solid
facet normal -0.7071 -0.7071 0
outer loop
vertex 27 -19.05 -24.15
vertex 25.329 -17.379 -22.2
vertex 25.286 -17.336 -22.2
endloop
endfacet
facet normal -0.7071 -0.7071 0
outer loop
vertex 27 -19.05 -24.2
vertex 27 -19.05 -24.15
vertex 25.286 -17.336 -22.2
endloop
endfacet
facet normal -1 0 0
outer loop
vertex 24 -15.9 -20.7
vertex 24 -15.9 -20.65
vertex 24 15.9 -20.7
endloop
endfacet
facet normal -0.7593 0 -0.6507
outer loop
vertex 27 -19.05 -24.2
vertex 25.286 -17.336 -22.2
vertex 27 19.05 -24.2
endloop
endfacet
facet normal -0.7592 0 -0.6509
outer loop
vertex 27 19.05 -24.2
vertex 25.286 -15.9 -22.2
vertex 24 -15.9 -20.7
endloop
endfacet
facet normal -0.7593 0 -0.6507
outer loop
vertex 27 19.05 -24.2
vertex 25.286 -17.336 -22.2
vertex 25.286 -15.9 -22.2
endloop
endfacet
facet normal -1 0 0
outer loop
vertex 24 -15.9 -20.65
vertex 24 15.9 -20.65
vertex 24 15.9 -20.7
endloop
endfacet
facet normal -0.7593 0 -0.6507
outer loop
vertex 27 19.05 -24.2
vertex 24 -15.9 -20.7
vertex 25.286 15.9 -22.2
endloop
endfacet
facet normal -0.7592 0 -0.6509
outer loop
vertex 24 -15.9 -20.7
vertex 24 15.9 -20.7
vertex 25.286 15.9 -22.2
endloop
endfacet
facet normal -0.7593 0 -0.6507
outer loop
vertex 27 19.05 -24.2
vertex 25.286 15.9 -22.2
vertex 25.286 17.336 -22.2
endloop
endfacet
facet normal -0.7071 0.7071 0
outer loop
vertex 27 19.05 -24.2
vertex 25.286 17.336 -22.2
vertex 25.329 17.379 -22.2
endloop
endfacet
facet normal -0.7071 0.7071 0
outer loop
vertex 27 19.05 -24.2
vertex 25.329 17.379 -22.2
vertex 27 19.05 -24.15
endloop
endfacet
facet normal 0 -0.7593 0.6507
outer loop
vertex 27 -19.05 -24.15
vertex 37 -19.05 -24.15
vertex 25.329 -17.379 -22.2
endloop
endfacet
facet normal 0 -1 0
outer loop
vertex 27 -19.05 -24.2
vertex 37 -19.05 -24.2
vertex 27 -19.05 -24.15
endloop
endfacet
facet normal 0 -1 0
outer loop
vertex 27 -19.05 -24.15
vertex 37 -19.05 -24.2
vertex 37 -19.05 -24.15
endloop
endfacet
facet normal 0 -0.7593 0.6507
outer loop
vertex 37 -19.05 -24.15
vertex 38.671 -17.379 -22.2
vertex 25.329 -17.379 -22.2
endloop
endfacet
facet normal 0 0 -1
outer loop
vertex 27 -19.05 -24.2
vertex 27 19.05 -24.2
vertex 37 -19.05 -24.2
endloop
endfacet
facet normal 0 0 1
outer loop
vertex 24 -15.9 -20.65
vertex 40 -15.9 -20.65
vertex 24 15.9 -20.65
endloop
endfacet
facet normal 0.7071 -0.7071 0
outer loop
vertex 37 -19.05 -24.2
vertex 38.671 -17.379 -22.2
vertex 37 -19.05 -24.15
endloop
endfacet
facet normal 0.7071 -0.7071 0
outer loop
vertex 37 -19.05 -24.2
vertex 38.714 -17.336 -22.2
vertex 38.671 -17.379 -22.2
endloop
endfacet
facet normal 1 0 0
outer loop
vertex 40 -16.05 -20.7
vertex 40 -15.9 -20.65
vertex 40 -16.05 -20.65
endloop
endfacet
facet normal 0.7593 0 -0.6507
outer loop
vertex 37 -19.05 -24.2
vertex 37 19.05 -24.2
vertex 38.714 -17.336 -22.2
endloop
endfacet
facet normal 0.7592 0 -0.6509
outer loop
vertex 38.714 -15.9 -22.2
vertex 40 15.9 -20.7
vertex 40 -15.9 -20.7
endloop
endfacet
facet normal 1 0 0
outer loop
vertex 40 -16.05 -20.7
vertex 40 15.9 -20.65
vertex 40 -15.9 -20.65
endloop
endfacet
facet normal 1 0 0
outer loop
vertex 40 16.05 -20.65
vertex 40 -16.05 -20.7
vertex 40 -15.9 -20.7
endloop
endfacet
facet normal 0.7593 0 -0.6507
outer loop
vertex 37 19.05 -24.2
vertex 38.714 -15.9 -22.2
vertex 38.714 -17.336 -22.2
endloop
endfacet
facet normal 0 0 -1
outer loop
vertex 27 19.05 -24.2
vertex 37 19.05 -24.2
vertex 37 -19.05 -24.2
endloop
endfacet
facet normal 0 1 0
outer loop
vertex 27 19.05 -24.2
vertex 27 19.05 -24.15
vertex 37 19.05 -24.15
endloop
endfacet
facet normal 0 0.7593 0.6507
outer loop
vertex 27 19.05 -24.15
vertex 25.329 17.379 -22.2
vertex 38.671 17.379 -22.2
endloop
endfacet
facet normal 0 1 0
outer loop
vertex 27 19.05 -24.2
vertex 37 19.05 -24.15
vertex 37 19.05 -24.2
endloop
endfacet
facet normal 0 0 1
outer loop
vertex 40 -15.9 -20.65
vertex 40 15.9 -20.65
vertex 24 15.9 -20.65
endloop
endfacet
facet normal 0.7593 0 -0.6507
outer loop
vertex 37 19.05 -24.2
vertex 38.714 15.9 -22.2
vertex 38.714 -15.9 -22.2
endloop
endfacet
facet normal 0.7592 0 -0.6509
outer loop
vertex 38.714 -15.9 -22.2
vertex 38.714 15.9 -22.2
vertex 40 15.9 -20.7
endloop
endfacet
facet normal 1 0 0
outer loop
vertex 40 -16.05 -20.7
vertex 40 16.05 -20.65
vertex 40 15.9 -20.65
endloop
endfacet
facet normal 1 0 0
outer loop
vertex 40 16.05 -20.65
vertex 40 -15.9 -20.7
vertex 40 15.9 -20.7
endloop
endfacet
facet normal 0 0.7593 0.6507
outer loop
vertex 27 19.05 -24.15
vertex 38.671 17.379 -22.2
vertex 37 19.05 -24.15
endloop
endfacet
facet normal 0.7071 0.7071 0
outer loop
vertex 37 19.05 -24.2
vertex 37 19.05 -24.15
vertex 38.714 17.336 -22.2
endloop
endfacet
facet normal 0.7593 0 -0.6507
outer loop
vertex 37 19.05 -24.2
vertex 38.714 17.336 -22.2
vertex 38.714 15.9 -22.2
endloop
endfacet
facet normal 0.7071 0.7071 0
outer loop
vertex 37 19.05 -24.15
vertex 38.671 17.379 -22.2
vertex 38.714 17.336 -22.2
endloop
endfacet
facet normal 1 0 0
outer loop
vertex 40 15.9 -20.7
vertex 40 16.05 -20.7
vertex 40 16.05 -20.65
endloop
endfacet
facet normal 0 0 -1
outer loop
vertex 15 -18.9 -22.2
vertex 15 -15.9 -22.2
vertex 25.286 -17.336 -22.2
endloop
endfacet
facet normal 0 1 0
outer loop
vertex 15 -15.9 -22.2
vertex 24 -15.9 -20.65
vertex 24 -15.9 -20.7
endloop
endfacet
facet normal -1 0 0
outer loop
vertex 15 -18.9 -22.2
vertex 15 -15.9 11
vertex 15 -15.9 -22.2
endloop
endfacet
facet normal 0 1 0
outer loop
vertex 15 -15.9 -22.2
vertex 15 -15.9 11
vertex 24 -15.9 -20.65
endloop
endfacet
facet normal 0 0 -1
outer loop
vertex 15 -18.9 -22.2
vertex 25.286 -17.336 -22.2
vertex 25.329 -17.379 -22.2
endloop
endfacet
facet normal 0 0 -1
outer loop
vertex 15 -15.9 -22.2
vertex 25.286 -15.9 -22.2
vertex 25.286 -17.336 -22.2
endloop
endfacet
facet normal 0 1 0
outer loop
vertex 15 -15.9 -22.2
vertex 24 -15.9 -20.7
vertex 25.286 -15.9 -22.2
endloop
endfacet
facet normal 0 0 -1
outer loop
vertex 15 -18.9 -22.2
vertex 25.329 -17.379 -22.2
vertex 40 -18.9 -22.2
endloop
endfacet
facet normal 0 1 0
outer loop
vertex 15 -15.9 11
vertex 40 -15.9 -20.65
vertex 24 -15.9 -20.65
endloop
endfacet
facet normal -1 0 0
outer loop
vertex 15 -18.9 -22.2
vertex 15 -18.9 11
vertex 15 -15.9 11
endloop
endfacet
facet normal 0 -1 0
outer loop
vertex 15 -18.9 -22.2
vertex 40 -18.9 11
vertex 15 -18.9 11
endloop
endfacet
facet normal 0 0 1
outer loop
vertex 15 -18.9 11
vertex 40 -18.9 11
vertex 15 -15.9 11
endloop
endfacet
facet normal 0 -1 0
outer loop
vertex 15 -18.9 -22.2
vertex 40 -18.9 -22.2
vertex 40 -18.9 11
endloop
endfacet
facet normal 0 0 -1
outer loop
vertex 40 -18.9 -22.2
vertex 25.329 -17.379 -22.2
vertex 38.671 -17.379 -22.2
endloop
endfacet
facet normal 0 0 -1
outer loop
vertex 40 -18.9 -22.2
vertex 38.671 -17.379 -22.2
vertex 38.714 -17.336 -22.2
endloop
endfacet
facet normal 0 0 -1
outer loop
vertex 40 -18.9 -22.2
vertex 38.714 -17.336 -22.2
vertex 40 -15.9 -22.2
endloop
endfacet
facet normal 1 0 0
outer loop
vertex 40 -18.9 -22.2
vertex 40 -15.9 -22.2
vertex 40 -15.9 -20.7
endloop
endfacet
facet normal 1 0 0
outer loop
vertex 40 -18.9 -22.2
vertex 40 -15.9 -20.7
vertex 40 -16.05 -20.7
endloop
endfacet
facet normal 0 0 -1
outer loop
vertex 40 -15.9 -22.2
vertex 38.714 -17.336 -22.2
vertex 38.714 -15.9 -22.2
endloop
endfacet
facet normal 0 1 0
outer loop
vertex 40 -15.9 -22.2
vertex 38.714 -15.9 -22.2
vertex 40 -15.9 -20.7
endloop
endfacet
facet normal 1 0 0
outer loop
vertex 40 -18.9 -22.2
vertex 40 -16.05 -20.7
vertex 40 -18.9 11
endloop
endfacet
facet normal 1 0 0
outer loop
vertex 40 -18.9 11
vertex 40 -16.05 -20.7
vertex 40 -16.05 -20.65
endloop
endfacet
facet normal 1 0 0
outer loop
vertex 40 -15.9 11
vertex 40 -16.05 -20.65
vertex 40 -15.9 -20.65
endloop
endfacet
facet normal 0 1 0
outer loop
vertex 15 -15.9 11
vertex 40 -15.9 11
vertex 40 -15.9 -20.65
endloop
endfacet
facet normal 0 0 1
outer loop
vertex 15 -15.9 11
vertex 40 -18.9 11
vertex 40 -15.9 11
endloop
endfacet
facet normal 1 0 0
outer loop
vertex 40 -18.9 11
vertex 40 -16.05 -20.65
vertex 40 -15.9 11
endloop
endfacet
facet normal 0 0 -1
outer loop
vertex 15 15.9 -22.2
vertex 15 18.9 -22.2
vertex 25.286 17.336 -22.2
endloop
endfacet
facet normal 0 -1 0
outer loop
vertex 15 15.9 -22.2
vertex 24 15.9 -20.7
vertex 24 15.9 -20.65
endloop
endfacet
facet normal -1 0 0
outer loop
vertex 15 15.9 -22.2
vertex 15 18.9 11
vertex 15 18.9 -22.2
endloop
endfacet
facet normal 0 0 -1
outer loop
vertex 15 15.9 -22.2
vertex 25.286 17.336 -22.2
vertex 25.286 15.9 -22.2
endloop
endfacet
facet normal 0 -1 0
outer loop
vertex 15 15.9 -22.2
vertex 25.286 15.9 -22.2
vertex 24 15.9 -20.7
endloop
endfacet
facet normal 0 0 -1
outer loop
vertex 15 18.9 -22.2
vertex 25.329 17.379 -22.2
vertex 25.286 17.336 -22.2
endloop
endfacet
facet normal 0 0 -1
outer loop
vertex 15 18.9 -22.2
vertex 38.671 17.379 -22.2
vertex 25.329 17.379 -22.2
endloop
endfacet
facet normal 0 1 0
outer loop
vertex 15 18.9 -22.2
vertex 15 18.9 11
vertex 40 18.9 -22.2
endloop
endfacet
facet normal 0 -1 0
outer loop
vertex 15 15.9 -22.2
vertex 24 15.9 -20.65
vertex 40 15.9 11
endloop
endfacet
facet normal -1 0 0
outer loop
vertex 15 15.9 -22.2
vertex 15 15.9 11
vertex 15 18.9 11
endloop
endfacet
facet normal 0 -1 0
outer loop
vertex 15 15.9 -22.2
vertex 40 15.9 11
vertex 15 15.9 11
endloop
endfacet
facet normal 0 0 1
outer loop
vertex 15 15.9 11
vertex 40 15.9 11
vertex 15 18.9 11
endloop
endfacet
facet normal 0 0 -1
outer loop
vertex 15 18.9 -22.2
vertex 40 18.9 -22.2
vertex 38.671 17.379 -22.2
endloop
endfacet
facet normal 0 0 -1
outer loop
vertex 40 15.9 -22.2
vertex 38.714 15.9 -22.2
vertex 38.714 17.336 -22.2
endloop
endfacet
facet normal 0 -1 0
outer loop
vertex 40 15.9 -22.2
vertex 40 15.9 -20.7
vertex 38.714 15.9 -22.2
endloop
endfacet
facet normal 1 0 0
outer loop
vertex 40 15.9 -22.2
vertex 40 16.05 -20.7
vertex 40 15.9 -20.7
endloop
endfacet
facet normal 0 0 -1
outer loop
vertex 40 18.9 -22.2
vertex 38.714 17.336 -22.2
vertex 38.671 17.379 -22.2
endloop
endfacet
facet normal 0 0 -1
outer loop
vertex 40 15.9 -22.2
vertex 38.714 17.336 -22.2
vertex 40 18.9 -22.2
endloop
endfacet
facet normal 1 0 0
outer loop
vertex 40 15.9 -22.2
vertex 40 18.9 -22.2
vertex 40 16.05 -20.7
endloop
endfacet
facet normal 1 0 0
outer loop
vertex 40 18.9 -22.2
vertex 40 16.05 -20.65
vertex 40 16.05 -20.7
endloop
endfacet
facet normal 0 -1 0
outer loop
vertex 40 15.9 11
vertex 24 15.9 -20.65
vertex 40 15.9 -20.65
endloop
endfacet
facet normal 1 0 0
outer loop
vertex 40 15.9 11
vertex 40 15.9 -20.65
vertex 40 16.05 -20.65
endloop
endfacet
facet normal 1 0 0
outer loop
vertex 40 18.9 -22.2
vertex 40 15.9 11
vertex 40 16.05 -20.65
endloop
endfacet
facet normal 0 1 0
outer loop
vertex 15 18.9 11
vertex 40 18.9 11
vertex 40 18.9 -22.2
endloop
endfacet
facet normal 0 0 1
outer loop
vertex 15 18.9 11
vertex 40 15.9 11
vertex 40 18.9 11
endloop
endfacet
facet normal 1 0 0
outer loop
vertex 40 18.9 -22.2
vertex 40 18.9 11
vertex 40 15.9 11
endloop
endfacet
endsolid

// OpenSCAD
// =============================================================================
// V6 KNEE BUMPER (TPU 95A) — collapse strike guard, backlog #15 "B"
// =============================================================================
// Replaces the RETIRED tibia_pad (which sat on the LATERAL MID-blade face and
// never led into the ground). collapse_study.py + strike-trace 2026-07-07:
// on a hard-power-loss limp fold the LOW knee-region contact is the TIBIA's
// KNEE-END pocket block, on its LATERAL faces (world-down when the block lies
// on its side). The y-side depends on fold direction, so this wraps BOTH ±Y
// faces. Complements "A" (controlled-limp sit on soft faults, firmware).
//
// MOUNTS ON THE TIBIA (rides the kfe rotation → always guards the knee end).
// Tibia frame: +X toward the foot, kfe axis Z@origin. Knee pocket block =
// x -16.05..56.05, y ±16.05 (SLAB_W 32.1 = 2*(CASE_HW 12.4 + CLR_POCKET 0.45
// + WALL 3.2), verified against tibia.scad/leg_v6_common.scad 2026-07-10 —
// BW below was a stale copy of tibia.scad's OLD SLAB_W comment (31.7); the
// real computed value is 32.1, see CR-8 #5), z -22.2..14.7 (SLAB_Z0..SLAB_Z1).
// The joint fork/disc grip the block at x<~15 (metal-on-metal, self-guarding);
// the EXPOSED lateral faces at x~15..40 are what this caps.
//
// GRIP: a U-channel that wraps UNDER the blade bottom (z-22.2) and hugs both
// ±Y faces — squeeze-fit on the 31.7 width + a CA dab (sacrificial, pop-off
// replaceable, same practice as skid_rail). Slides up from below over the
// block bottom. Sled-chamfered so the wrap-under doesn't catch on collapse.
// COVERAGE (honest): caps the EXPOSED knee-block lateral faces x15..40. The
// strike concentrates a bit further back (x-16..12, the joint zone) but the
// femur FORK grips the tibia there (metal-on-metal, self-guarding) and leaves
// no room for a tibia-side pad — so this covers the exposed forward case wall,
// the fork covers the rear. Combined with A (the sit lands on the outboard
// face, which the arms cover). Partial by necessity, not by oversight.
// GATE (both green, exit 0): leg_v6 knee-fold sweep — clears the femur fork
// through ±109° (only the 118° MECH STOP HITs, as designed; v1's full-width
// wrap-under fouled the fork at x15..23/z-25 and was pulled fwd to x24). +
// chassis crouch (bumper vs battery/riser clean). Print: TPU 95A, U opening up.

$fn = 32;
EPS = 0.05;

BW   = 32.1;            // knee-block width (y) = SLAB_W (corrected 2026-07-10,
                        //   see header note — was stale 31.7)
BZ0  = -22.2;          // block bottom (SLAB_Z0)
BZ1  = 14.7;           // block top (SLAB_Z1)
X0   = 15;  X1 = 40;    // ARM span along the tibia (exposed knee-block strike face)
XB0  = 24;             // BASE (wrap-under) start — kept FWD of x15..23, the
                       //   fold-collision zone (gate: the base dipped z-25..-23
                       //   into the femur fork there at kfe ±109). Arms (z>=-22)
                       //   clear the fold; only the wrap-under fouled.
WALL = 3.0;            // TPU wall on each lateral face
BASE = 2.0;            // wrap-under thickness below the blade bottom
ZTOP = 11;            // arms rise to z11 (clear of the strap bosses @z14.7)
CH   = 3.0;            // sled chamfer on the wrap-under leading/outer edges
SQUEEZE = 0.3;         // CR-8 #3: TOTAL inner-span interference (~0.15/side)
                       //   for the TPU 95A squeeze-fit over the rigid tibia
                       //   block — was 0 (arms sat flush at exact BW, no clamp
                       //   force). TPU stretches on install and grips; backed
                       //   up by the CA dab (part header). Only the GRIP arms
                       //   are squeezed; the wrap-under base is an outer hook,
                       //   not a mating face, so it stays at the nominal BW.

module knee_bumper() {
    hy = BW / 2;                       // 16.05, the nominal ±Y block face plane
    fit_hy = hy - SQUEEZE / 2;         // 15.90, the squeezed ARM inner-face plane
    union() {
        // wrap-under base (below the blade bottom) — FRONT only (x24..40),
        // clear of the fold-collision zone; provides the bottom grip hook.
        // Top raised +1.5 INTO the arm zone so it fuses to both arms (one body).
        hull() {
            translate([XB0 + CH, -(hy + WALL), BZ0 - BASE])
                cube([X1 - XB0 - 2 * CH, 2 * (hy + WALL), EPS]);
            translate([XB0, -(hy + WALL - CH), BZ0 + 1.5])
                cube([X1 - XB0, 2 * (hy + WALL - CH), EPS]);
        }
        // two side arms on the ±Y faces (full strike span x15..40) — squeezed
        // fit_hy inward of the nominal block face (SQUEEZE interference)
        for (sy = [-1, 1])
            translate([X0, sy * fit_hy - (sy < 0 ? WALL : 0), BZ0])
                cube([X1 - X0, WALL, ZTOP - BZ0]);
    }
}

knee_bumper();
